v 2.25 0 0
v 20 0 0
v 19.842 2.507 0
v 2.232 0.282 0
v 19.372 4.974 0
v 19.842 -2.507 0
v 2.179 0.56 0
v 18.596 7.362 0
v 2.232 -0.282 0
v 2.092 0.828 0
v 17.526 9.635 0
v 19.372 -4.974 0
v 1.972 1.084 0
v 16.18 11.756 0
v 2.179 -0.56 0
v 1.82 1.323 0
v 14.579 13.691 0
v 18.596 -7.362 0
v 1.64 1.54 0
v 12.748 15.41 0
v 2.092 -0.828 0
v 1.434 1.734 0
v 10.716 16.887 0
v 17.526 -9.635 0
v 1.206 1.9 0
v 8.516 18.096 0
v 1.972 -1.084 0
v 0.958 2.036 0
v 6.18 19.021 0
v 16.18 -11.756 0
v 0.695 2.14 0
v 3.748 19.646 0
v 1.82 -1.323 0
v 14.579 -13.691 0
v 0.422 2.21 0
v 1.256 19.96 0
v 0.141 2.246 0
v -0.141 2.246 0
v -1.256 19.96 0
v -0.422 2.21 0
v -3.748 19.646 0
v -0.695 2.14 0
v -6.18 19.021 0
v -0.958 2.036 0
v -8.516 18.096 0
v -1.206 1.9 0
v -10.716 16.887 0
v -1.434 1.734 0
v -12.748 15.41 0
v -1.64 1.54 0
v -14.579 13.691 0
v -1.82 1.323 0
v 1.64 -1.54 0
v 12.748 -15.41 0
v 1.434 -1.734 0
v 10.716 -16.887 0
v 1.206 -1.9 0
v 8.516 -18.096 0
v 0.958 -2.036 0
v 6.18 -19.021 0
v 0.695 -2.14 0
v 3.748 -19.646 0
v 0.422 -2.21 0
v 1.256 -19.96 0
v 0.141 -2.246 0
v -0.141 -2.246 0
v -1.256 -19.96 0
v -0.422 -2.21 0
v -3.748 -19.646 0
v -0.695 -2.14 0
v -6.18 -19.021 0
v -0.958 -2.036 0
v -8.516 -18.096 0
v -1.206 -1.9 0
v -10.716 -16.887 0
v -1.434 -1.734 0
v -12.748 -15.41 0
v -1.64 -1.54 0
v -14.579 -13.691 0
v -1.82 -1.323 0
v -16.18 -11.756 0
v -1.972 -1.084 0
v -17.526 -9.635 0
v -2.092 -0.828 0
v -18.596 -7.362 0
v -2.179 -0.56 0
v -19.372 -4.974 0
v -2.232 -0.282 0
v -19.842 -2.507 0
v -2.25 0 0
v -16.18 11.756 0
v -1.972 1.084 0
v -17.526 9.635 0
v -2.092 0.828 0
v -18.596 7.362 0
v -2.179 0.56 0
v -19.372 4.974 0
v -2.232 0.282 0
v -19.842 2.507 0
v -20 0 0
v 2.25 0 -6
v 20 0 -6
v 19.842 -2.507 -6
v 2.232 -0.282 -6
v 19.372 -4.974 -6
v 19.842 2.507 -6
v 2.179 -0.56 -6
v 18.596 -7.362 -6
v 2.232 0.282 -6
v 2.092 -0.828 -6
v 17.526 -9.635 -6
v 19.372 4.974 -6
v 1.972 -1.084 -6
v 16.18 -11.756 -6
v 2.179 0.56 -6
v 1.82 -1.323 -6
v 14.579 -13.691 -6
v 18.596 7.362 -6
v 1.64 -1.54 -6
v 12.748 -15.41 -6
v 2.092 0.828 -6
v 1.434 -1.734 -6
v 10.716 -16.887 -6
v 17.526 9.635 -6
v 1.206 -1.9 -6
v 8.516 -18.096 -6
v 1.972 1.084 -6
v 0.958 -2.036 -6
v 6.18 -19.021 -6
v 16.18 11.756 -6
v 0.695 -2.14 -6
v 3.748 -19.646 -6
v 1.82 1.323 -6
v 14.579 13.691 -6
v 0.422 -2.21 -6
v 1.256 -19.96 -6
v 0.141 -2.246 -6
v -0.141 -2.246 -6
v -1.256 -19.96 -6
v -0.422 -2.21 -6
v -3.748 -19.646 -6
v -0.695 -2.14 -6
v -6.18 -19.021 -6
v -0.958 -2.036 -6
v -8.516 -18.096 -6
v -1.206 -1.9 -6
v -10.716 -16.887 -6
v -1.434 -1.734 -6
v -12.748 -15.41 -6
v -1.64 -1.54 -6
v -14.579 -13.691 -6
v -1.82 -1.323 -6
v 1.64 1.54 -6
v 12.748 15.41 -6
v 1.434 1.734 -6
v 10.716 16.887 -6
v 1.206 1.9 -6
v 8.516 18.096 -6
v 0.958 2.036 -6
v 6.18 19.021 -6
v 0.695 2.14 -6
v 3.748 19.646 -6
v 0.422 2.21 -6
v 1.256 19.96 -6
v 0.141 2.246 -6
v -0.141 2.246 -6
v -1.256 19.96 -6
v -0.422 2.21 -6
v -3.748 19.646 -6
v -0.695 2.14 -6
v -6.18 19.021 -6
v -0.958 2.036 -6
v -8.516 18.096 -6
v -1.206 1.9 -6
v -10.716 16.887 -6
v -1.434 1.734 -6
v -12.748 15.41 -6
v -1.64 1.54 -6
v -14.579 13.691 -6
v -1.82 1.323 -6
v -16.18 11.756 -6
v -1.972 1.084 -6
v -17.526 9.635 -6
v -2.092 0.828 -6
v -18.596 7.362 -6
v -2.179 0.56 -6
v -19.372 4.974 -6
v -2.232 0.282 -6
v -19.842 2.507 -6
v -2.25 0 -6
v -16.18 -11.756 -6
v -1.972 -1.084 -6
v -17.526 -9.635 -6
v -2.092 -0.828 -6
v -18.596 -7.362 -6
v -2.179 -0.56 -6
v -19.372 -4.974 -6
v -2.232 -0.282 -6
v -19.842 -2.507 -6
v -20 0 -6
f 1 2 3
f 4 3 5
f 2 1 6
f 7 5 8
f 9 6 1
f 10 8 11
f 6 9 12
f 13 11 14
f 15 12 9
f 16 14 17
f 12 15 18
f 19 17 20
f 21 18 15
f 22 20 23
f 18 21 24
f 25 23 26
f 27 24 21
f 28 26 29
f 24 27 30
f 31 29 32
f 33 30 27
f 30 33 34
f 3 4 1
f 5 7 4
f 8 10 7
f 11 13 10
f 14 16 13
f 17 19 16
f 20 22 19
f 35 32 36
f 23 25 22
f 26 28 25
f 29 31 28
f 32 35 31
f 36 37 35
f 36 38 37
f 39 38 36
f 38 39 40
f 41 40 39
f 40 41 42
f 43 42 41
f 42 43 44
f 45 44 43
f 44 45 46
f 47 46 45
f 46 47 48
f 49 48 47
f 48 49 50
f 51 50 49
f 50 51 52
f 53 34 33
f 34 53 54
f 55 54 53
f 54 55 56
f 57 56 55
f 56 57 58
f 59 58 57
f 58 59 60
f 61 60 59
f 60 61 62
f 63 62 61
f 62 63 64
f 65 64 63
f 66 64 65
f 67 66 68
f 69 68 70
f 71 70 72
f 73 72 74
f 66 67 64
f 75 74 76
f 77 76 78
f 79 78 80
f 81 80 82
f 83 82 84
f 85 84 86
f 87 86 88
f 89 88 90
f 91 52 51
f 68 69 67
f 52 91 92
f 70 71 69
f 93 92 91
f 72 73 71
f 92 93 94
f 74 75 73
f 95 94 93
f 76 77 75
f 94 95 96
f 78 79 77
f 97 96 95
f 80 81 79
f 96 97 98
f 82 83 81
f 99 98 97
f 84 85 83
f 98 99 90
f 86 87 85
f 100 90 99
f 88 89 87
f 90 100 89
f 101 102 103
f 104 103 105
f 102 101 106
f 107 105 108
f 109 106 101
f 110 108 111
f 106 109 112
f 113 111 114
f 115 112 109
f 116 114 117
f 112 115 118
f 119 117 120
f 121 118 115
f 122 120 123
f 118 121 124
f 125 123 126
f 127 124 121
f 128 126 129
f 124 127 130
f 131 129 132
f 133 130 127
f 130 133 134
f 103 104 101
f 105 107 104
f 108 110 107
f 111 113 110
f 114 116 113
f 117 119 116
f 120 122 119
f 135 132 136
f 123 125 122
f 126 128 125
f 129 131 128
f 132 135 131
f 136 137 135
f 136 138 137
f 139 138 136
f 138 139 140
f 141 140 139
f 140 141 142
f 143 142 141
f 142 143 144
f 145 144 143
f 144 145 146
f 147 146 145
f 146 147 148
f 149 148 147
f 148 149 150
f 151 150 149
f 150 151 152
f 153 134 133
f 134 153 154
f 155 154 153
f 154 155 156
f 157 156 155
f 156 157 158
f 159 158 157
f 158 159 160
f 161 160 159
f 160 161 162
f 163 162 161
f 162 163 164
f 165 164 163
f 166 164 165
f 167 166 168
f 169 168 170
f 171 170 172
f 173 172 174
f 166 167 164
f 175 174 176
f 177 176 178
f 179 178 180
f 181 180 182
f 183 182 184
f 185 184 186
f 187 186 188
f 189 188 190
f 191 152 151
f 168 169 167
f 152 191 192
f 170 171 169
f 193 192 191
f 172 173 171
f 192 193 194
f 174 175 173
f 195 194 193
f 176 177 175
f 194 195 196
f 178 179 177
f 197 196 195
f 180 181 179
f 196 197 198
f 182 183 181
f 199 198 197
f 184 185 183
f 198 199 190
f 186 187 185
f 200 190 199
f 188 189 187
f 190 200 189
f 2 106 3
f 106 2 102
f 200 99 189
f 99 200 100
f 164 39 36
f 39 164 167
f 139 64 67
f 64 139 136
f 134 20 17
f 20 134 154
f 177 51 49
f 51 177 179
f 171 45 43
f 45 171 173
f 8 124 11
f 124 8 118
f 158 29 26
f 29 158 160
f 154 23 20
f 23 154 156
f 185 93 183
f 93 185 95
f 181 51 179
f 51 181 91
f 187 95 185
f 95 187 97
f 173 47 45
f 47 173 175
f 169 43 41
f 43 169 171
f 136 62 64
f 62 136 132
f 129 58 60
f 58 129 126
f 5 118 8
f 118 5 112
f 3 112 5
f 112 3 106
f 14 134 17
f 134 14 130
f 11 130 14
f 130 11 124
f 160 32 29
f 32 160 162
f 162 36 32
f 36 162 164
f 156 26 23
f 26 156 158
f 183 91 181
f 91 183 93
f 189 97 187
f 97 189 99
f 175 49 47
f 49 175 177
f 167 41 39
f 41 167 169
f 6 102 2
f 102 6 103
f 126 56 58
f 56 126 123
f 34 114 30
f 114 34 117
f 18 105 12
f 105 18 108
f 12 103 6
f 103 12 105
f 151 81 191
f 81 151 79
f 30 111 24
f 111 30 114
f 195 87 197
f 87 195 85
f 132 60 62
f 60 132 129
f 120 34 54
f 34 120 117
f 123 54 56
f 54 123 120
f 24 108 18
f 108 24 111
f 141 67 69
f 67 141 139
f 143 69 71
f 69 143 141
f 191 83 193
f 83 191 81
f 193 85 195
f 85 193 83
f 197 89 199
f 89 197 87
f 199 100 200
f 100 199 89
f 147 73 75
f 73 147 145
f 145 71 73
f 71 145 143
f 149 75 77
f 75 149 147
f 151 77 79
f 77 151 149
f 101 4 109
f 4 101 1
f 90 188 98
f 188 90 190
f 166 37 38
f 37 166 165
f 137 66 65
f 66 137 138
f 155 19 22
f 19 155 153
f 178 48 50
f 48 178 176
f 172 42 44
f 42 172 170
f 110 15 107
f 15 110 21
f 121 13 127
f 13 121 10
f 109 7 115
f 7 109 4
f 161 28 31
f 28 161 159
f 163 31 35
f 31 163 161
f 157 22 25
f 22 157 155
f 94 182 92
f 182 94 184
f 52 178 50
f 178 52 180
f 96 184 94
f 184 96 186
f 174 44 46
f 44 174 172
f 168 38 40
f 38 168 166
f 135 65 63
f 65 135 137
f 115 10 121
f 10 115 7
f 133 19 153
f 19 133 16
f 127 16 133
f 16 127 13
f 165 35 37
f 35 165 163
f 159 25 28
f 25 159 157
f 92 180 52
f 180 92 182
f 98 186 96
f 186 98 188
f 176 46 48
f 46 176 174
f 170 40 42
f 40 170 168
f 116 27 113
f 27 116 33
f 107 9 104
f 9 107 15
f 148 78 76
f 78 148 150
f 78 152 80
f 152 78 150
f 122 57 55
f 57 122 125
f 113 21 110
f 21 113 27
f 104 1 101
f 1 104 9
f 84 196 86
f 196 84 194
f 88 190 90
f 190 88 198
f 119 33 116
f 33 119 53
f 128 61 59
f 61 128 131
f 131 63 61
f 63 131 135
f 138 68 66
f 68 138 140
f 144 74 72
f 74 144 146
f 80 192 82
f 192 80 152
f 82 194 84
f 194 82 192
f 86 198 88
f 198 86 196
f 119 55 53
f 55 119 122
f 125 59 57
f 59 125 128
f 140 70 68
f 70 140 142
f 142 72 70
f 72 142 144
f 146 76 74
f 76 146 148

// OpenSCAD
$fn = 50;


difference() {
	union() {
		translate(v = [0, 0, -6.0000000000]) {
			cylinder(h = 6, r = 10.0000000000);
		}
		translate(v = [0, 0, -6.0000000000]) {
			cylinder(h = 6, r = 20.0000000000);
		}
	}
	union() {
		#translate(v = [0, 0, -6]) {
			cylinder(h = 6, r = 2.2500000000);
		}
	}
}
